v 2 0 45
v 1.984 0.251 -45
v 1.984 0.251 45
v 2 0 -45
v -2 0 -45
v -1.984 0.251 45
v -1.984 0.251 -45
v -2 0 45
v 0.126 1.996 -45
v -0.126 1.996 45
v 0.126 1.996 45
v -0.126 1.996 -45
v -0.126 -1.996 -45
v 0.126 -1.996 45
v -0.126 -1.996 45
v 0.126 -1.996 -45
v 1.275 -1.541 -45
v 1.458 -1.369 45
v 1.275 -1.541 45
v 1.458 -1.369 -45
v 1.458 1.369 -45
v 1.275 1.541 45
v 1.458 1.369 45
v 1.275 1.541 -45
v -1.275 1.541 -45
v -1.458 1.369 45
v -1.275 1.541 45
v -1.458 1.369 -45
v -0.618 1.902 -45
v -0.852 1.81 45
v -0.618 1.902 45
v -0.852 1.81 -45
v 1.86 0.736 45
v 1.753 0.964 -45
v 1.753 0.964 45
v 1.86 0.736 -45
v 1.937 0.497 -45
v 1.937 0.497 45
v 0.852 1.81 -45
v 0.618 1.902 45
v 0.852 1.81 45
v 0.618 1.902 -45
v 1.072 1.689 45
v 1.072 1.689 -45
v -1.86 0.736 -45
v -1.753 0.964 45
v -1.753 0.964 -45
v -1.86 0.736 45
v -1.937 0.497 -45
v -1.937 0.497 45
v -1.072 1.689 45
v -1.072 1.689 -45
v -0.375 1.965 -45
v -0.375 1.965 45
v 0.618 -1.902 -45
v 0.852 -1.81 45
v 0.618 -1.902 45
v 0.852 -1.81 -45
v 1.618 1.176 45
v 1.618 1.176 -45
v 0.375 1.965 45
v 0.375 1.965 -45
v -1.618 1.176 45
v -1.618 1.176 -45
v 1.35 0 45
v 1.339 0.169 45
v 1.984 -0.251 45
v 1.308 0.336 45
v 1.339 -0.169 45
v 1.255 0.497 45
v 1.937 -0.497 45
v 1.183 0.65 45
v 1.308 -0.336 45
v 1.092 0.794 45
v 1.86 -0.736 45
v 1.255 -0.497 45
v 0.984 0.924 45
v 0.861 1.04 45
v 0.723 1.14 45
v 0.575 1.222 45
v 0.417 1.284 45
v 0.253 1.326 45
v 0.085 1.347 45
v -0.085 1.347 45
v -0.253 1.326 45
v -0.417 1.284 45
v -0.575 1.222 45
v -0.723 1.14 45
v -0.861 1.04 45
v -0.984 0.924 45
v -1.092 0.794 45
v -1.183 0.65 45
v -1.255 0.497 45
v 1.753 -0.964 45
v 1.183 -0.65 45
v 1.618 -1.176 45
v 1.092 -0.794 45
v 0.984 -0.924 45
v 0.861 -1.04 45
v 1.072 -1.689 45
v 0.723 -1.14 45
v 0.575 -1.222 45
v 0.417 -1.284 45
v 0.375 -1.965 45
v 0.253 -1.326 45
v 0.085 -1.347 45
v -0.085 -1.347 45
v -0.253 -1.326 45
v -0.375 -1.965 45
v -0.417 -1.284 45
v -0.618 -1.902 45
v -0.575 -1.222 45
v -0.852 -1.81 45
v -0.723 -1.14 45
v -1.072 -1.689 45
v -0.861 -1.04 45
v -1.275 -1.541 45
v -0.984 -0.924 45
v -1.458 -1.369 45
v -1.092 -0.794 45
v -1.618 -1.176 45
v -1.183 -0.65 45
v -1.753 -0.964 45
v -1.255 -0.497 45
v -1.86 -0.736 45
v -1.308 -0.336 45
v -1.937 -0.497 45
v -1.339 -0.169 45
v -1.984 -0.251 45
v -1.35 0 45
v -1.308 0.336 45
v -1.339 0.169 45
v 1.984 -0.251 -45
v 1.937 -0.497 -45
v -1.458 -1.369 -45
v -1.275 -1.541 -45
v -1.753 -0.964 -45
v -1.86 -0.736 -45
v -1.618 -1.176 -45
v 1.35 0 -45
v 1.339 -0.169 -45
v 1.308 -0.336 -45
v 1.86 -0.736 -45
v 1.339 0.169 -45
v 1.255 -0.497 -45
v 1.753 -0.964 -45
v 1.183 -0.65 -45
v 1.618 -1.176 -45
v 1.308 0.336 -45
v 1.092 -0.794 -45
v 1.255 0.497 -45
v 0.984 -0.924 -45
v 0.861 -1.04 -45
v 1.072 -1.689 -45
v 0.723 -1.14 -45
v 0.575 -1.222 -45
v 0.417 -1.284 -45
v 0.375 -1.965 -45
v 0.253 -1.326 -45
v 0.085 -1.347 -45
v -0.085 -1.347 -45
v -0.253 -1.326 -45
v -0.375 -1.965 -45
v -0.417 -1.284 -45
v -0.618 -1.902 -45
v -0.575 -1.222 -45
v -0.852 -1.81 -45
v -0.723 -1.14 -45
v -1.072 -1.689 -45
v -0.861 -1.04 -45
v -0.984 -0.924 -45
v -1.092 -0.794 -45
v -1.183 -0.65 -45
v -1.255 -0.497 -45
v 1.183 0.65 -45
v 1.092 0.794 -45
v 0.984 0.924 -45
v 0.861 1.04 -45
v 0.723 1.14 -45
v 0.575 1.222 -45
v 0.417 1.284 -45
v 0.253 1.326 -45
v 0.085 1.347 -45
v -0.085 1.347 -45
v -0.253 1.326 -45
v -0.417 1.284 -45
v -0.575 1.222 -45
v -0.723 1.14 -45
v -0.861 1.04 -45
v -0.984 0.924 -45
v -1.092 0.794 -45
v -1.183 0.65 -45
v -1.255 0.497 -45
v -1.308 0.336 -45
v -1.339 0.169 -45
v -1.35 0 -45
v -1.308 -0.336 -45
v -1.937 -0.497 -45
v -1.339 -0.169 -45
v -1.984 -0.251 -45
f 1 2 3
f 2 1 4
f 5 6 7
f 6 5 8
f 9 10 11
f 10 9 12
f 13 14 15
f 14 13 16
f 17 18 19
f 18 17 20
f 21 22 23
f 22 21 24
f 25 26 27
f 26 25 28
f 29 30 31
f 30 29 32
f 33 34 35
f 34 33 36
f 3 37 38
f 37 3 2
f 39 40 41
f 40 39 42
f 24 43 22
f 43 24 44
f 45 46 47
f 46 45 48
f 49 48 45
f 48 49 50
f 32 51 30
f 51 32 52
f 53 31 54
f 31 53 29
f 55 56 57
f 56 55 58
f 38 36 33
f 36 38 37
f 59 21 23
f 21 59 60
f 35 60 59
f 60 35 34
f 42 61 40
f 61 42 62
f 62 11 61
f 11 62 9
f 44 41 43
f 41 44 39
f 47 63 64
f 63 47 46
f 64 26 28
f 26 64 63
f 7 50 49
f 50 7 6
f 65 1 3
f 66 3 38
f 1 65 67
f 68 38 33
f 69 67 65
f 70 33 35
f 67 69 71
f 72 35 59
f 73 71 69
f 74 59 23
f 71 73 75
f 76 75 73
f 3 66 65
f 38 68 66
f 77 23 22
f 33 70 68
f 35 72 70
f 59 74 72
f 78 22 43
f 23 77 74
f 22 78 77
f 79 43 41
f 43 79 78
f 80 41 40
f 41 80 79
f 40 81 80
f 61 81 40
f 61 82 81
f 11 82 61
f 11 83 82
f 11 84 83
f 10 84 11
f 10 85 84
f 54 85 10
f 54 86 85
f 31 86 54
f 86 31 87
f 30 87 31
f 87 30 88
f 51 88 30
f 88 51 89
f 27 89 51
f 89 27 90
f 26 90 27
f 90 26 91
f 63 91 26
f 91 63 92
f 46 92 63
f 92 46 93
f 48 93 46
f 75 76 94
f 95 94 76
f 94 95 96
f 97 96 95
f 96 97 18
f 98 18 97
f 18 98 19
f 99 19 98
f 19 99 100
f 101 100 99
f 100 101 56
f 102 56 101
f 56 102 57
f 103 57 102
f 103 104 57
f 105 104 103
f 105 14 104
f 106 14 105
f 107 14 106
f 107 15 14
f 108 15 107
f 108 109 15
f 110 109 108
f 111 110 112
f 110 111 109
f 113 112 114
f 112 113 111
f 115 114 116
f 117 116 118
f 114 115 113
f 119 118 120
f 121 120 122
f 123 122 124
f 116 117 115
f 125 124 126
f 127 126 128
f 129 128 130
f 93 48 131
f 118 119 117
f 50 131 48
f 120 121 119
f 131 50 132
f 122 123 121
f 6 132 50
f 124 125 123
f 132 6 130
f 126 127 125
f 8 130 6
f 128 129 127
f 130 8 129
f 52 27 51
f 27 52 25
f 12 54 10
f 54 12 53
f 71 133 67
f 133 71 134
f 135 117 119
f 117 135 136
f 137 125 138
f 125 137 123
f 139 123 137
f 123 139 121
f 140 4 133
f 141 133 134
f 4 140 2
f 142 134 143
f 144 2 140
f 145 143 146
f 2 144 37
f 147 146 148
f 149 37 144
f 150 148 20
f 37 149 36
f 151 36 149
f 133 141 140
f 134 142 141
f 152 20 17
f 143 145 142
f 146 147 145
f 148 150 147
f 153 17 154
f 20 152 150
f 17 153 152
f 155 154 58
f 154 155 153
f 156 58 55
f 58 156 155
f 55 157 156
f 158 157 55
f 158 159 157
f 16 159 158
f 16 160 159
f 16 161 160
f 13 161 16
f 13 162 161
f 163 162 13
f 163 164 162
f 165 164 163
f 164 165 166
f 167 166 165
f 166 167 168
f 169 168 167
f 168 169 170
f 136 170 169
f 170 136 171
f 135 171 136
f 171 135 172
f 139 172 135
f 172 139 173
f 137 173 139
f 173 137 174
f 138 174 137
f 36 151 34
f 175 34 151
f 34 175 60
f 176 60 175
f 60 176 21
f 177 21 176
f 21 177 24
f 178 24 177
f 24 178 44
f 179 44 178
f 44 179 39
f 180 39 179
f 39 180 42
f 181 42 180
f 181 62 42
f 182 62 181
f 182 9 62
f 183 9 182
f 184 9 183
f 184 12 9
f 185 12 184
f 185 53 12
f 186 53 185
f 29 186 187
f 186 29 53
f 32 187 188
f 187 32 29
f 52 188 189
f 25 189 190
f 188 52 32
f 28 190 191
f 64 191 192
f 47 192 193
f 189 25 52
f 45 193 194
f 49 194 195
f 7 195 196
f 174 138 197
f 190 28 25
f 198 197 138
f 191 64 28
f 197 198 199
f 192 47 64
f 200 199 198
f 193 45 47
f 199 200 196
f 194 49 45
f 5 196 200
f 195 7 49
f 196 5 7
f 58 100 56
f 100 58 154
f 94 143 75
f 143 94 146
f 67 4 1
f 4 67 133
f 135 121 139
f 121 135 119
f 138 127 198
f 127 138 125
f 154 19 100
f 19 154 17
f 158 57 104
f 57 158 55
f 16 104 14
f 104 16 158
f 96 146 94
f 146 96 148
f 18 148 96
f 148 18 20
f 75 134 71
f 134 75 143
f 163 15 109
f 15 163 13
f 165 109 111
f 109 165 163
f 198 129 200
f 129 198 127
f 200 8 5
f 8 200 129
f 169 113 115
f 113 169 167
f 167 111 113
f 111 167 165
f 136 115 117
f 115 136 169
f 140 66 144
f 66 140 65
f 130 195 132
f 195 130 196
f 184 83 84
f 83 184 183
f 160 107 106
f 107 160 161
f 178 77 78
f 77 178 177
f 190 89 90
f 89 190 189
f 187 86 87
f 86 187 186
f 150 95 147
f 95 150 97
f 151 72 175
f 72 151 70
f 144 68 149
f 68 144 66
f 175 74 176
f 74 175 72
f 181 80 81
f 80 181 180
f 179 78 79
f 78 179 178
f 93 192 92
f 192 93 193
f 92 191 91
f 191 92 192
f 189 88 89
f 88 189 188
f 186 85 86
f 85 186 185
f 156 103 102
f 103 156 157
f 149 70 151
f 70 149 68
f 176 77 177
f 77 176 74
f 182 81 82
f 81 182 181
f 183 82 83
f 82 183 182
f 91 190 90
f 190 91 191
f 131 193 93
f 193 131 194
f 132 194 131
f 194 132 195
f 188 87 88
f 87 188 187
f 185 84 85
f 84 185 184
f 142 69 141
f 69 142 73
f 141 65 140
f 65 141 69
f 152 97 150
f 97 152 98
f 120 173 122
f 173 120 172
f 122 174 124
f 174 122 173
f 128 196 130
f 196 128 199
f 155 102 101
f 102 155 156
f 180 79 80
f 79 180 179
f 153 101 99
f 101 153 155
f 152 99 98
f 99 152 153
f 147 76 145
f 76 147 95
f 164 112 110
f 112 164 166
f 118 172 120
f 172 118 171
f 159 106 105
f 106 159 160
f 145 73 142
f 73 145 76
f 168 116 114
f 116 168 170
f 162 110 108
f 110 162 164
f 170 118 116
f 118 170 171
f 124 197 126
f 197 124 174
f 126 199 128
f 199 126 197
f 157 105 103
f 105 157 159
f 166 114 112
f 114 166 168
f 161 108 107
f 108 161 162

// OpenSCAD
$fn = 50;


difference() {
	union() {
		translate(v = [0, 0, -45.0000000000]) {
			cylinder(h = 90, r = 2.0000000000);
		}
	}
	union() {
		translate(v = [0, 0, -100.0000000000]) {
			cylinder(h = 200, r = 1.3500000000);
		}
	}
}
